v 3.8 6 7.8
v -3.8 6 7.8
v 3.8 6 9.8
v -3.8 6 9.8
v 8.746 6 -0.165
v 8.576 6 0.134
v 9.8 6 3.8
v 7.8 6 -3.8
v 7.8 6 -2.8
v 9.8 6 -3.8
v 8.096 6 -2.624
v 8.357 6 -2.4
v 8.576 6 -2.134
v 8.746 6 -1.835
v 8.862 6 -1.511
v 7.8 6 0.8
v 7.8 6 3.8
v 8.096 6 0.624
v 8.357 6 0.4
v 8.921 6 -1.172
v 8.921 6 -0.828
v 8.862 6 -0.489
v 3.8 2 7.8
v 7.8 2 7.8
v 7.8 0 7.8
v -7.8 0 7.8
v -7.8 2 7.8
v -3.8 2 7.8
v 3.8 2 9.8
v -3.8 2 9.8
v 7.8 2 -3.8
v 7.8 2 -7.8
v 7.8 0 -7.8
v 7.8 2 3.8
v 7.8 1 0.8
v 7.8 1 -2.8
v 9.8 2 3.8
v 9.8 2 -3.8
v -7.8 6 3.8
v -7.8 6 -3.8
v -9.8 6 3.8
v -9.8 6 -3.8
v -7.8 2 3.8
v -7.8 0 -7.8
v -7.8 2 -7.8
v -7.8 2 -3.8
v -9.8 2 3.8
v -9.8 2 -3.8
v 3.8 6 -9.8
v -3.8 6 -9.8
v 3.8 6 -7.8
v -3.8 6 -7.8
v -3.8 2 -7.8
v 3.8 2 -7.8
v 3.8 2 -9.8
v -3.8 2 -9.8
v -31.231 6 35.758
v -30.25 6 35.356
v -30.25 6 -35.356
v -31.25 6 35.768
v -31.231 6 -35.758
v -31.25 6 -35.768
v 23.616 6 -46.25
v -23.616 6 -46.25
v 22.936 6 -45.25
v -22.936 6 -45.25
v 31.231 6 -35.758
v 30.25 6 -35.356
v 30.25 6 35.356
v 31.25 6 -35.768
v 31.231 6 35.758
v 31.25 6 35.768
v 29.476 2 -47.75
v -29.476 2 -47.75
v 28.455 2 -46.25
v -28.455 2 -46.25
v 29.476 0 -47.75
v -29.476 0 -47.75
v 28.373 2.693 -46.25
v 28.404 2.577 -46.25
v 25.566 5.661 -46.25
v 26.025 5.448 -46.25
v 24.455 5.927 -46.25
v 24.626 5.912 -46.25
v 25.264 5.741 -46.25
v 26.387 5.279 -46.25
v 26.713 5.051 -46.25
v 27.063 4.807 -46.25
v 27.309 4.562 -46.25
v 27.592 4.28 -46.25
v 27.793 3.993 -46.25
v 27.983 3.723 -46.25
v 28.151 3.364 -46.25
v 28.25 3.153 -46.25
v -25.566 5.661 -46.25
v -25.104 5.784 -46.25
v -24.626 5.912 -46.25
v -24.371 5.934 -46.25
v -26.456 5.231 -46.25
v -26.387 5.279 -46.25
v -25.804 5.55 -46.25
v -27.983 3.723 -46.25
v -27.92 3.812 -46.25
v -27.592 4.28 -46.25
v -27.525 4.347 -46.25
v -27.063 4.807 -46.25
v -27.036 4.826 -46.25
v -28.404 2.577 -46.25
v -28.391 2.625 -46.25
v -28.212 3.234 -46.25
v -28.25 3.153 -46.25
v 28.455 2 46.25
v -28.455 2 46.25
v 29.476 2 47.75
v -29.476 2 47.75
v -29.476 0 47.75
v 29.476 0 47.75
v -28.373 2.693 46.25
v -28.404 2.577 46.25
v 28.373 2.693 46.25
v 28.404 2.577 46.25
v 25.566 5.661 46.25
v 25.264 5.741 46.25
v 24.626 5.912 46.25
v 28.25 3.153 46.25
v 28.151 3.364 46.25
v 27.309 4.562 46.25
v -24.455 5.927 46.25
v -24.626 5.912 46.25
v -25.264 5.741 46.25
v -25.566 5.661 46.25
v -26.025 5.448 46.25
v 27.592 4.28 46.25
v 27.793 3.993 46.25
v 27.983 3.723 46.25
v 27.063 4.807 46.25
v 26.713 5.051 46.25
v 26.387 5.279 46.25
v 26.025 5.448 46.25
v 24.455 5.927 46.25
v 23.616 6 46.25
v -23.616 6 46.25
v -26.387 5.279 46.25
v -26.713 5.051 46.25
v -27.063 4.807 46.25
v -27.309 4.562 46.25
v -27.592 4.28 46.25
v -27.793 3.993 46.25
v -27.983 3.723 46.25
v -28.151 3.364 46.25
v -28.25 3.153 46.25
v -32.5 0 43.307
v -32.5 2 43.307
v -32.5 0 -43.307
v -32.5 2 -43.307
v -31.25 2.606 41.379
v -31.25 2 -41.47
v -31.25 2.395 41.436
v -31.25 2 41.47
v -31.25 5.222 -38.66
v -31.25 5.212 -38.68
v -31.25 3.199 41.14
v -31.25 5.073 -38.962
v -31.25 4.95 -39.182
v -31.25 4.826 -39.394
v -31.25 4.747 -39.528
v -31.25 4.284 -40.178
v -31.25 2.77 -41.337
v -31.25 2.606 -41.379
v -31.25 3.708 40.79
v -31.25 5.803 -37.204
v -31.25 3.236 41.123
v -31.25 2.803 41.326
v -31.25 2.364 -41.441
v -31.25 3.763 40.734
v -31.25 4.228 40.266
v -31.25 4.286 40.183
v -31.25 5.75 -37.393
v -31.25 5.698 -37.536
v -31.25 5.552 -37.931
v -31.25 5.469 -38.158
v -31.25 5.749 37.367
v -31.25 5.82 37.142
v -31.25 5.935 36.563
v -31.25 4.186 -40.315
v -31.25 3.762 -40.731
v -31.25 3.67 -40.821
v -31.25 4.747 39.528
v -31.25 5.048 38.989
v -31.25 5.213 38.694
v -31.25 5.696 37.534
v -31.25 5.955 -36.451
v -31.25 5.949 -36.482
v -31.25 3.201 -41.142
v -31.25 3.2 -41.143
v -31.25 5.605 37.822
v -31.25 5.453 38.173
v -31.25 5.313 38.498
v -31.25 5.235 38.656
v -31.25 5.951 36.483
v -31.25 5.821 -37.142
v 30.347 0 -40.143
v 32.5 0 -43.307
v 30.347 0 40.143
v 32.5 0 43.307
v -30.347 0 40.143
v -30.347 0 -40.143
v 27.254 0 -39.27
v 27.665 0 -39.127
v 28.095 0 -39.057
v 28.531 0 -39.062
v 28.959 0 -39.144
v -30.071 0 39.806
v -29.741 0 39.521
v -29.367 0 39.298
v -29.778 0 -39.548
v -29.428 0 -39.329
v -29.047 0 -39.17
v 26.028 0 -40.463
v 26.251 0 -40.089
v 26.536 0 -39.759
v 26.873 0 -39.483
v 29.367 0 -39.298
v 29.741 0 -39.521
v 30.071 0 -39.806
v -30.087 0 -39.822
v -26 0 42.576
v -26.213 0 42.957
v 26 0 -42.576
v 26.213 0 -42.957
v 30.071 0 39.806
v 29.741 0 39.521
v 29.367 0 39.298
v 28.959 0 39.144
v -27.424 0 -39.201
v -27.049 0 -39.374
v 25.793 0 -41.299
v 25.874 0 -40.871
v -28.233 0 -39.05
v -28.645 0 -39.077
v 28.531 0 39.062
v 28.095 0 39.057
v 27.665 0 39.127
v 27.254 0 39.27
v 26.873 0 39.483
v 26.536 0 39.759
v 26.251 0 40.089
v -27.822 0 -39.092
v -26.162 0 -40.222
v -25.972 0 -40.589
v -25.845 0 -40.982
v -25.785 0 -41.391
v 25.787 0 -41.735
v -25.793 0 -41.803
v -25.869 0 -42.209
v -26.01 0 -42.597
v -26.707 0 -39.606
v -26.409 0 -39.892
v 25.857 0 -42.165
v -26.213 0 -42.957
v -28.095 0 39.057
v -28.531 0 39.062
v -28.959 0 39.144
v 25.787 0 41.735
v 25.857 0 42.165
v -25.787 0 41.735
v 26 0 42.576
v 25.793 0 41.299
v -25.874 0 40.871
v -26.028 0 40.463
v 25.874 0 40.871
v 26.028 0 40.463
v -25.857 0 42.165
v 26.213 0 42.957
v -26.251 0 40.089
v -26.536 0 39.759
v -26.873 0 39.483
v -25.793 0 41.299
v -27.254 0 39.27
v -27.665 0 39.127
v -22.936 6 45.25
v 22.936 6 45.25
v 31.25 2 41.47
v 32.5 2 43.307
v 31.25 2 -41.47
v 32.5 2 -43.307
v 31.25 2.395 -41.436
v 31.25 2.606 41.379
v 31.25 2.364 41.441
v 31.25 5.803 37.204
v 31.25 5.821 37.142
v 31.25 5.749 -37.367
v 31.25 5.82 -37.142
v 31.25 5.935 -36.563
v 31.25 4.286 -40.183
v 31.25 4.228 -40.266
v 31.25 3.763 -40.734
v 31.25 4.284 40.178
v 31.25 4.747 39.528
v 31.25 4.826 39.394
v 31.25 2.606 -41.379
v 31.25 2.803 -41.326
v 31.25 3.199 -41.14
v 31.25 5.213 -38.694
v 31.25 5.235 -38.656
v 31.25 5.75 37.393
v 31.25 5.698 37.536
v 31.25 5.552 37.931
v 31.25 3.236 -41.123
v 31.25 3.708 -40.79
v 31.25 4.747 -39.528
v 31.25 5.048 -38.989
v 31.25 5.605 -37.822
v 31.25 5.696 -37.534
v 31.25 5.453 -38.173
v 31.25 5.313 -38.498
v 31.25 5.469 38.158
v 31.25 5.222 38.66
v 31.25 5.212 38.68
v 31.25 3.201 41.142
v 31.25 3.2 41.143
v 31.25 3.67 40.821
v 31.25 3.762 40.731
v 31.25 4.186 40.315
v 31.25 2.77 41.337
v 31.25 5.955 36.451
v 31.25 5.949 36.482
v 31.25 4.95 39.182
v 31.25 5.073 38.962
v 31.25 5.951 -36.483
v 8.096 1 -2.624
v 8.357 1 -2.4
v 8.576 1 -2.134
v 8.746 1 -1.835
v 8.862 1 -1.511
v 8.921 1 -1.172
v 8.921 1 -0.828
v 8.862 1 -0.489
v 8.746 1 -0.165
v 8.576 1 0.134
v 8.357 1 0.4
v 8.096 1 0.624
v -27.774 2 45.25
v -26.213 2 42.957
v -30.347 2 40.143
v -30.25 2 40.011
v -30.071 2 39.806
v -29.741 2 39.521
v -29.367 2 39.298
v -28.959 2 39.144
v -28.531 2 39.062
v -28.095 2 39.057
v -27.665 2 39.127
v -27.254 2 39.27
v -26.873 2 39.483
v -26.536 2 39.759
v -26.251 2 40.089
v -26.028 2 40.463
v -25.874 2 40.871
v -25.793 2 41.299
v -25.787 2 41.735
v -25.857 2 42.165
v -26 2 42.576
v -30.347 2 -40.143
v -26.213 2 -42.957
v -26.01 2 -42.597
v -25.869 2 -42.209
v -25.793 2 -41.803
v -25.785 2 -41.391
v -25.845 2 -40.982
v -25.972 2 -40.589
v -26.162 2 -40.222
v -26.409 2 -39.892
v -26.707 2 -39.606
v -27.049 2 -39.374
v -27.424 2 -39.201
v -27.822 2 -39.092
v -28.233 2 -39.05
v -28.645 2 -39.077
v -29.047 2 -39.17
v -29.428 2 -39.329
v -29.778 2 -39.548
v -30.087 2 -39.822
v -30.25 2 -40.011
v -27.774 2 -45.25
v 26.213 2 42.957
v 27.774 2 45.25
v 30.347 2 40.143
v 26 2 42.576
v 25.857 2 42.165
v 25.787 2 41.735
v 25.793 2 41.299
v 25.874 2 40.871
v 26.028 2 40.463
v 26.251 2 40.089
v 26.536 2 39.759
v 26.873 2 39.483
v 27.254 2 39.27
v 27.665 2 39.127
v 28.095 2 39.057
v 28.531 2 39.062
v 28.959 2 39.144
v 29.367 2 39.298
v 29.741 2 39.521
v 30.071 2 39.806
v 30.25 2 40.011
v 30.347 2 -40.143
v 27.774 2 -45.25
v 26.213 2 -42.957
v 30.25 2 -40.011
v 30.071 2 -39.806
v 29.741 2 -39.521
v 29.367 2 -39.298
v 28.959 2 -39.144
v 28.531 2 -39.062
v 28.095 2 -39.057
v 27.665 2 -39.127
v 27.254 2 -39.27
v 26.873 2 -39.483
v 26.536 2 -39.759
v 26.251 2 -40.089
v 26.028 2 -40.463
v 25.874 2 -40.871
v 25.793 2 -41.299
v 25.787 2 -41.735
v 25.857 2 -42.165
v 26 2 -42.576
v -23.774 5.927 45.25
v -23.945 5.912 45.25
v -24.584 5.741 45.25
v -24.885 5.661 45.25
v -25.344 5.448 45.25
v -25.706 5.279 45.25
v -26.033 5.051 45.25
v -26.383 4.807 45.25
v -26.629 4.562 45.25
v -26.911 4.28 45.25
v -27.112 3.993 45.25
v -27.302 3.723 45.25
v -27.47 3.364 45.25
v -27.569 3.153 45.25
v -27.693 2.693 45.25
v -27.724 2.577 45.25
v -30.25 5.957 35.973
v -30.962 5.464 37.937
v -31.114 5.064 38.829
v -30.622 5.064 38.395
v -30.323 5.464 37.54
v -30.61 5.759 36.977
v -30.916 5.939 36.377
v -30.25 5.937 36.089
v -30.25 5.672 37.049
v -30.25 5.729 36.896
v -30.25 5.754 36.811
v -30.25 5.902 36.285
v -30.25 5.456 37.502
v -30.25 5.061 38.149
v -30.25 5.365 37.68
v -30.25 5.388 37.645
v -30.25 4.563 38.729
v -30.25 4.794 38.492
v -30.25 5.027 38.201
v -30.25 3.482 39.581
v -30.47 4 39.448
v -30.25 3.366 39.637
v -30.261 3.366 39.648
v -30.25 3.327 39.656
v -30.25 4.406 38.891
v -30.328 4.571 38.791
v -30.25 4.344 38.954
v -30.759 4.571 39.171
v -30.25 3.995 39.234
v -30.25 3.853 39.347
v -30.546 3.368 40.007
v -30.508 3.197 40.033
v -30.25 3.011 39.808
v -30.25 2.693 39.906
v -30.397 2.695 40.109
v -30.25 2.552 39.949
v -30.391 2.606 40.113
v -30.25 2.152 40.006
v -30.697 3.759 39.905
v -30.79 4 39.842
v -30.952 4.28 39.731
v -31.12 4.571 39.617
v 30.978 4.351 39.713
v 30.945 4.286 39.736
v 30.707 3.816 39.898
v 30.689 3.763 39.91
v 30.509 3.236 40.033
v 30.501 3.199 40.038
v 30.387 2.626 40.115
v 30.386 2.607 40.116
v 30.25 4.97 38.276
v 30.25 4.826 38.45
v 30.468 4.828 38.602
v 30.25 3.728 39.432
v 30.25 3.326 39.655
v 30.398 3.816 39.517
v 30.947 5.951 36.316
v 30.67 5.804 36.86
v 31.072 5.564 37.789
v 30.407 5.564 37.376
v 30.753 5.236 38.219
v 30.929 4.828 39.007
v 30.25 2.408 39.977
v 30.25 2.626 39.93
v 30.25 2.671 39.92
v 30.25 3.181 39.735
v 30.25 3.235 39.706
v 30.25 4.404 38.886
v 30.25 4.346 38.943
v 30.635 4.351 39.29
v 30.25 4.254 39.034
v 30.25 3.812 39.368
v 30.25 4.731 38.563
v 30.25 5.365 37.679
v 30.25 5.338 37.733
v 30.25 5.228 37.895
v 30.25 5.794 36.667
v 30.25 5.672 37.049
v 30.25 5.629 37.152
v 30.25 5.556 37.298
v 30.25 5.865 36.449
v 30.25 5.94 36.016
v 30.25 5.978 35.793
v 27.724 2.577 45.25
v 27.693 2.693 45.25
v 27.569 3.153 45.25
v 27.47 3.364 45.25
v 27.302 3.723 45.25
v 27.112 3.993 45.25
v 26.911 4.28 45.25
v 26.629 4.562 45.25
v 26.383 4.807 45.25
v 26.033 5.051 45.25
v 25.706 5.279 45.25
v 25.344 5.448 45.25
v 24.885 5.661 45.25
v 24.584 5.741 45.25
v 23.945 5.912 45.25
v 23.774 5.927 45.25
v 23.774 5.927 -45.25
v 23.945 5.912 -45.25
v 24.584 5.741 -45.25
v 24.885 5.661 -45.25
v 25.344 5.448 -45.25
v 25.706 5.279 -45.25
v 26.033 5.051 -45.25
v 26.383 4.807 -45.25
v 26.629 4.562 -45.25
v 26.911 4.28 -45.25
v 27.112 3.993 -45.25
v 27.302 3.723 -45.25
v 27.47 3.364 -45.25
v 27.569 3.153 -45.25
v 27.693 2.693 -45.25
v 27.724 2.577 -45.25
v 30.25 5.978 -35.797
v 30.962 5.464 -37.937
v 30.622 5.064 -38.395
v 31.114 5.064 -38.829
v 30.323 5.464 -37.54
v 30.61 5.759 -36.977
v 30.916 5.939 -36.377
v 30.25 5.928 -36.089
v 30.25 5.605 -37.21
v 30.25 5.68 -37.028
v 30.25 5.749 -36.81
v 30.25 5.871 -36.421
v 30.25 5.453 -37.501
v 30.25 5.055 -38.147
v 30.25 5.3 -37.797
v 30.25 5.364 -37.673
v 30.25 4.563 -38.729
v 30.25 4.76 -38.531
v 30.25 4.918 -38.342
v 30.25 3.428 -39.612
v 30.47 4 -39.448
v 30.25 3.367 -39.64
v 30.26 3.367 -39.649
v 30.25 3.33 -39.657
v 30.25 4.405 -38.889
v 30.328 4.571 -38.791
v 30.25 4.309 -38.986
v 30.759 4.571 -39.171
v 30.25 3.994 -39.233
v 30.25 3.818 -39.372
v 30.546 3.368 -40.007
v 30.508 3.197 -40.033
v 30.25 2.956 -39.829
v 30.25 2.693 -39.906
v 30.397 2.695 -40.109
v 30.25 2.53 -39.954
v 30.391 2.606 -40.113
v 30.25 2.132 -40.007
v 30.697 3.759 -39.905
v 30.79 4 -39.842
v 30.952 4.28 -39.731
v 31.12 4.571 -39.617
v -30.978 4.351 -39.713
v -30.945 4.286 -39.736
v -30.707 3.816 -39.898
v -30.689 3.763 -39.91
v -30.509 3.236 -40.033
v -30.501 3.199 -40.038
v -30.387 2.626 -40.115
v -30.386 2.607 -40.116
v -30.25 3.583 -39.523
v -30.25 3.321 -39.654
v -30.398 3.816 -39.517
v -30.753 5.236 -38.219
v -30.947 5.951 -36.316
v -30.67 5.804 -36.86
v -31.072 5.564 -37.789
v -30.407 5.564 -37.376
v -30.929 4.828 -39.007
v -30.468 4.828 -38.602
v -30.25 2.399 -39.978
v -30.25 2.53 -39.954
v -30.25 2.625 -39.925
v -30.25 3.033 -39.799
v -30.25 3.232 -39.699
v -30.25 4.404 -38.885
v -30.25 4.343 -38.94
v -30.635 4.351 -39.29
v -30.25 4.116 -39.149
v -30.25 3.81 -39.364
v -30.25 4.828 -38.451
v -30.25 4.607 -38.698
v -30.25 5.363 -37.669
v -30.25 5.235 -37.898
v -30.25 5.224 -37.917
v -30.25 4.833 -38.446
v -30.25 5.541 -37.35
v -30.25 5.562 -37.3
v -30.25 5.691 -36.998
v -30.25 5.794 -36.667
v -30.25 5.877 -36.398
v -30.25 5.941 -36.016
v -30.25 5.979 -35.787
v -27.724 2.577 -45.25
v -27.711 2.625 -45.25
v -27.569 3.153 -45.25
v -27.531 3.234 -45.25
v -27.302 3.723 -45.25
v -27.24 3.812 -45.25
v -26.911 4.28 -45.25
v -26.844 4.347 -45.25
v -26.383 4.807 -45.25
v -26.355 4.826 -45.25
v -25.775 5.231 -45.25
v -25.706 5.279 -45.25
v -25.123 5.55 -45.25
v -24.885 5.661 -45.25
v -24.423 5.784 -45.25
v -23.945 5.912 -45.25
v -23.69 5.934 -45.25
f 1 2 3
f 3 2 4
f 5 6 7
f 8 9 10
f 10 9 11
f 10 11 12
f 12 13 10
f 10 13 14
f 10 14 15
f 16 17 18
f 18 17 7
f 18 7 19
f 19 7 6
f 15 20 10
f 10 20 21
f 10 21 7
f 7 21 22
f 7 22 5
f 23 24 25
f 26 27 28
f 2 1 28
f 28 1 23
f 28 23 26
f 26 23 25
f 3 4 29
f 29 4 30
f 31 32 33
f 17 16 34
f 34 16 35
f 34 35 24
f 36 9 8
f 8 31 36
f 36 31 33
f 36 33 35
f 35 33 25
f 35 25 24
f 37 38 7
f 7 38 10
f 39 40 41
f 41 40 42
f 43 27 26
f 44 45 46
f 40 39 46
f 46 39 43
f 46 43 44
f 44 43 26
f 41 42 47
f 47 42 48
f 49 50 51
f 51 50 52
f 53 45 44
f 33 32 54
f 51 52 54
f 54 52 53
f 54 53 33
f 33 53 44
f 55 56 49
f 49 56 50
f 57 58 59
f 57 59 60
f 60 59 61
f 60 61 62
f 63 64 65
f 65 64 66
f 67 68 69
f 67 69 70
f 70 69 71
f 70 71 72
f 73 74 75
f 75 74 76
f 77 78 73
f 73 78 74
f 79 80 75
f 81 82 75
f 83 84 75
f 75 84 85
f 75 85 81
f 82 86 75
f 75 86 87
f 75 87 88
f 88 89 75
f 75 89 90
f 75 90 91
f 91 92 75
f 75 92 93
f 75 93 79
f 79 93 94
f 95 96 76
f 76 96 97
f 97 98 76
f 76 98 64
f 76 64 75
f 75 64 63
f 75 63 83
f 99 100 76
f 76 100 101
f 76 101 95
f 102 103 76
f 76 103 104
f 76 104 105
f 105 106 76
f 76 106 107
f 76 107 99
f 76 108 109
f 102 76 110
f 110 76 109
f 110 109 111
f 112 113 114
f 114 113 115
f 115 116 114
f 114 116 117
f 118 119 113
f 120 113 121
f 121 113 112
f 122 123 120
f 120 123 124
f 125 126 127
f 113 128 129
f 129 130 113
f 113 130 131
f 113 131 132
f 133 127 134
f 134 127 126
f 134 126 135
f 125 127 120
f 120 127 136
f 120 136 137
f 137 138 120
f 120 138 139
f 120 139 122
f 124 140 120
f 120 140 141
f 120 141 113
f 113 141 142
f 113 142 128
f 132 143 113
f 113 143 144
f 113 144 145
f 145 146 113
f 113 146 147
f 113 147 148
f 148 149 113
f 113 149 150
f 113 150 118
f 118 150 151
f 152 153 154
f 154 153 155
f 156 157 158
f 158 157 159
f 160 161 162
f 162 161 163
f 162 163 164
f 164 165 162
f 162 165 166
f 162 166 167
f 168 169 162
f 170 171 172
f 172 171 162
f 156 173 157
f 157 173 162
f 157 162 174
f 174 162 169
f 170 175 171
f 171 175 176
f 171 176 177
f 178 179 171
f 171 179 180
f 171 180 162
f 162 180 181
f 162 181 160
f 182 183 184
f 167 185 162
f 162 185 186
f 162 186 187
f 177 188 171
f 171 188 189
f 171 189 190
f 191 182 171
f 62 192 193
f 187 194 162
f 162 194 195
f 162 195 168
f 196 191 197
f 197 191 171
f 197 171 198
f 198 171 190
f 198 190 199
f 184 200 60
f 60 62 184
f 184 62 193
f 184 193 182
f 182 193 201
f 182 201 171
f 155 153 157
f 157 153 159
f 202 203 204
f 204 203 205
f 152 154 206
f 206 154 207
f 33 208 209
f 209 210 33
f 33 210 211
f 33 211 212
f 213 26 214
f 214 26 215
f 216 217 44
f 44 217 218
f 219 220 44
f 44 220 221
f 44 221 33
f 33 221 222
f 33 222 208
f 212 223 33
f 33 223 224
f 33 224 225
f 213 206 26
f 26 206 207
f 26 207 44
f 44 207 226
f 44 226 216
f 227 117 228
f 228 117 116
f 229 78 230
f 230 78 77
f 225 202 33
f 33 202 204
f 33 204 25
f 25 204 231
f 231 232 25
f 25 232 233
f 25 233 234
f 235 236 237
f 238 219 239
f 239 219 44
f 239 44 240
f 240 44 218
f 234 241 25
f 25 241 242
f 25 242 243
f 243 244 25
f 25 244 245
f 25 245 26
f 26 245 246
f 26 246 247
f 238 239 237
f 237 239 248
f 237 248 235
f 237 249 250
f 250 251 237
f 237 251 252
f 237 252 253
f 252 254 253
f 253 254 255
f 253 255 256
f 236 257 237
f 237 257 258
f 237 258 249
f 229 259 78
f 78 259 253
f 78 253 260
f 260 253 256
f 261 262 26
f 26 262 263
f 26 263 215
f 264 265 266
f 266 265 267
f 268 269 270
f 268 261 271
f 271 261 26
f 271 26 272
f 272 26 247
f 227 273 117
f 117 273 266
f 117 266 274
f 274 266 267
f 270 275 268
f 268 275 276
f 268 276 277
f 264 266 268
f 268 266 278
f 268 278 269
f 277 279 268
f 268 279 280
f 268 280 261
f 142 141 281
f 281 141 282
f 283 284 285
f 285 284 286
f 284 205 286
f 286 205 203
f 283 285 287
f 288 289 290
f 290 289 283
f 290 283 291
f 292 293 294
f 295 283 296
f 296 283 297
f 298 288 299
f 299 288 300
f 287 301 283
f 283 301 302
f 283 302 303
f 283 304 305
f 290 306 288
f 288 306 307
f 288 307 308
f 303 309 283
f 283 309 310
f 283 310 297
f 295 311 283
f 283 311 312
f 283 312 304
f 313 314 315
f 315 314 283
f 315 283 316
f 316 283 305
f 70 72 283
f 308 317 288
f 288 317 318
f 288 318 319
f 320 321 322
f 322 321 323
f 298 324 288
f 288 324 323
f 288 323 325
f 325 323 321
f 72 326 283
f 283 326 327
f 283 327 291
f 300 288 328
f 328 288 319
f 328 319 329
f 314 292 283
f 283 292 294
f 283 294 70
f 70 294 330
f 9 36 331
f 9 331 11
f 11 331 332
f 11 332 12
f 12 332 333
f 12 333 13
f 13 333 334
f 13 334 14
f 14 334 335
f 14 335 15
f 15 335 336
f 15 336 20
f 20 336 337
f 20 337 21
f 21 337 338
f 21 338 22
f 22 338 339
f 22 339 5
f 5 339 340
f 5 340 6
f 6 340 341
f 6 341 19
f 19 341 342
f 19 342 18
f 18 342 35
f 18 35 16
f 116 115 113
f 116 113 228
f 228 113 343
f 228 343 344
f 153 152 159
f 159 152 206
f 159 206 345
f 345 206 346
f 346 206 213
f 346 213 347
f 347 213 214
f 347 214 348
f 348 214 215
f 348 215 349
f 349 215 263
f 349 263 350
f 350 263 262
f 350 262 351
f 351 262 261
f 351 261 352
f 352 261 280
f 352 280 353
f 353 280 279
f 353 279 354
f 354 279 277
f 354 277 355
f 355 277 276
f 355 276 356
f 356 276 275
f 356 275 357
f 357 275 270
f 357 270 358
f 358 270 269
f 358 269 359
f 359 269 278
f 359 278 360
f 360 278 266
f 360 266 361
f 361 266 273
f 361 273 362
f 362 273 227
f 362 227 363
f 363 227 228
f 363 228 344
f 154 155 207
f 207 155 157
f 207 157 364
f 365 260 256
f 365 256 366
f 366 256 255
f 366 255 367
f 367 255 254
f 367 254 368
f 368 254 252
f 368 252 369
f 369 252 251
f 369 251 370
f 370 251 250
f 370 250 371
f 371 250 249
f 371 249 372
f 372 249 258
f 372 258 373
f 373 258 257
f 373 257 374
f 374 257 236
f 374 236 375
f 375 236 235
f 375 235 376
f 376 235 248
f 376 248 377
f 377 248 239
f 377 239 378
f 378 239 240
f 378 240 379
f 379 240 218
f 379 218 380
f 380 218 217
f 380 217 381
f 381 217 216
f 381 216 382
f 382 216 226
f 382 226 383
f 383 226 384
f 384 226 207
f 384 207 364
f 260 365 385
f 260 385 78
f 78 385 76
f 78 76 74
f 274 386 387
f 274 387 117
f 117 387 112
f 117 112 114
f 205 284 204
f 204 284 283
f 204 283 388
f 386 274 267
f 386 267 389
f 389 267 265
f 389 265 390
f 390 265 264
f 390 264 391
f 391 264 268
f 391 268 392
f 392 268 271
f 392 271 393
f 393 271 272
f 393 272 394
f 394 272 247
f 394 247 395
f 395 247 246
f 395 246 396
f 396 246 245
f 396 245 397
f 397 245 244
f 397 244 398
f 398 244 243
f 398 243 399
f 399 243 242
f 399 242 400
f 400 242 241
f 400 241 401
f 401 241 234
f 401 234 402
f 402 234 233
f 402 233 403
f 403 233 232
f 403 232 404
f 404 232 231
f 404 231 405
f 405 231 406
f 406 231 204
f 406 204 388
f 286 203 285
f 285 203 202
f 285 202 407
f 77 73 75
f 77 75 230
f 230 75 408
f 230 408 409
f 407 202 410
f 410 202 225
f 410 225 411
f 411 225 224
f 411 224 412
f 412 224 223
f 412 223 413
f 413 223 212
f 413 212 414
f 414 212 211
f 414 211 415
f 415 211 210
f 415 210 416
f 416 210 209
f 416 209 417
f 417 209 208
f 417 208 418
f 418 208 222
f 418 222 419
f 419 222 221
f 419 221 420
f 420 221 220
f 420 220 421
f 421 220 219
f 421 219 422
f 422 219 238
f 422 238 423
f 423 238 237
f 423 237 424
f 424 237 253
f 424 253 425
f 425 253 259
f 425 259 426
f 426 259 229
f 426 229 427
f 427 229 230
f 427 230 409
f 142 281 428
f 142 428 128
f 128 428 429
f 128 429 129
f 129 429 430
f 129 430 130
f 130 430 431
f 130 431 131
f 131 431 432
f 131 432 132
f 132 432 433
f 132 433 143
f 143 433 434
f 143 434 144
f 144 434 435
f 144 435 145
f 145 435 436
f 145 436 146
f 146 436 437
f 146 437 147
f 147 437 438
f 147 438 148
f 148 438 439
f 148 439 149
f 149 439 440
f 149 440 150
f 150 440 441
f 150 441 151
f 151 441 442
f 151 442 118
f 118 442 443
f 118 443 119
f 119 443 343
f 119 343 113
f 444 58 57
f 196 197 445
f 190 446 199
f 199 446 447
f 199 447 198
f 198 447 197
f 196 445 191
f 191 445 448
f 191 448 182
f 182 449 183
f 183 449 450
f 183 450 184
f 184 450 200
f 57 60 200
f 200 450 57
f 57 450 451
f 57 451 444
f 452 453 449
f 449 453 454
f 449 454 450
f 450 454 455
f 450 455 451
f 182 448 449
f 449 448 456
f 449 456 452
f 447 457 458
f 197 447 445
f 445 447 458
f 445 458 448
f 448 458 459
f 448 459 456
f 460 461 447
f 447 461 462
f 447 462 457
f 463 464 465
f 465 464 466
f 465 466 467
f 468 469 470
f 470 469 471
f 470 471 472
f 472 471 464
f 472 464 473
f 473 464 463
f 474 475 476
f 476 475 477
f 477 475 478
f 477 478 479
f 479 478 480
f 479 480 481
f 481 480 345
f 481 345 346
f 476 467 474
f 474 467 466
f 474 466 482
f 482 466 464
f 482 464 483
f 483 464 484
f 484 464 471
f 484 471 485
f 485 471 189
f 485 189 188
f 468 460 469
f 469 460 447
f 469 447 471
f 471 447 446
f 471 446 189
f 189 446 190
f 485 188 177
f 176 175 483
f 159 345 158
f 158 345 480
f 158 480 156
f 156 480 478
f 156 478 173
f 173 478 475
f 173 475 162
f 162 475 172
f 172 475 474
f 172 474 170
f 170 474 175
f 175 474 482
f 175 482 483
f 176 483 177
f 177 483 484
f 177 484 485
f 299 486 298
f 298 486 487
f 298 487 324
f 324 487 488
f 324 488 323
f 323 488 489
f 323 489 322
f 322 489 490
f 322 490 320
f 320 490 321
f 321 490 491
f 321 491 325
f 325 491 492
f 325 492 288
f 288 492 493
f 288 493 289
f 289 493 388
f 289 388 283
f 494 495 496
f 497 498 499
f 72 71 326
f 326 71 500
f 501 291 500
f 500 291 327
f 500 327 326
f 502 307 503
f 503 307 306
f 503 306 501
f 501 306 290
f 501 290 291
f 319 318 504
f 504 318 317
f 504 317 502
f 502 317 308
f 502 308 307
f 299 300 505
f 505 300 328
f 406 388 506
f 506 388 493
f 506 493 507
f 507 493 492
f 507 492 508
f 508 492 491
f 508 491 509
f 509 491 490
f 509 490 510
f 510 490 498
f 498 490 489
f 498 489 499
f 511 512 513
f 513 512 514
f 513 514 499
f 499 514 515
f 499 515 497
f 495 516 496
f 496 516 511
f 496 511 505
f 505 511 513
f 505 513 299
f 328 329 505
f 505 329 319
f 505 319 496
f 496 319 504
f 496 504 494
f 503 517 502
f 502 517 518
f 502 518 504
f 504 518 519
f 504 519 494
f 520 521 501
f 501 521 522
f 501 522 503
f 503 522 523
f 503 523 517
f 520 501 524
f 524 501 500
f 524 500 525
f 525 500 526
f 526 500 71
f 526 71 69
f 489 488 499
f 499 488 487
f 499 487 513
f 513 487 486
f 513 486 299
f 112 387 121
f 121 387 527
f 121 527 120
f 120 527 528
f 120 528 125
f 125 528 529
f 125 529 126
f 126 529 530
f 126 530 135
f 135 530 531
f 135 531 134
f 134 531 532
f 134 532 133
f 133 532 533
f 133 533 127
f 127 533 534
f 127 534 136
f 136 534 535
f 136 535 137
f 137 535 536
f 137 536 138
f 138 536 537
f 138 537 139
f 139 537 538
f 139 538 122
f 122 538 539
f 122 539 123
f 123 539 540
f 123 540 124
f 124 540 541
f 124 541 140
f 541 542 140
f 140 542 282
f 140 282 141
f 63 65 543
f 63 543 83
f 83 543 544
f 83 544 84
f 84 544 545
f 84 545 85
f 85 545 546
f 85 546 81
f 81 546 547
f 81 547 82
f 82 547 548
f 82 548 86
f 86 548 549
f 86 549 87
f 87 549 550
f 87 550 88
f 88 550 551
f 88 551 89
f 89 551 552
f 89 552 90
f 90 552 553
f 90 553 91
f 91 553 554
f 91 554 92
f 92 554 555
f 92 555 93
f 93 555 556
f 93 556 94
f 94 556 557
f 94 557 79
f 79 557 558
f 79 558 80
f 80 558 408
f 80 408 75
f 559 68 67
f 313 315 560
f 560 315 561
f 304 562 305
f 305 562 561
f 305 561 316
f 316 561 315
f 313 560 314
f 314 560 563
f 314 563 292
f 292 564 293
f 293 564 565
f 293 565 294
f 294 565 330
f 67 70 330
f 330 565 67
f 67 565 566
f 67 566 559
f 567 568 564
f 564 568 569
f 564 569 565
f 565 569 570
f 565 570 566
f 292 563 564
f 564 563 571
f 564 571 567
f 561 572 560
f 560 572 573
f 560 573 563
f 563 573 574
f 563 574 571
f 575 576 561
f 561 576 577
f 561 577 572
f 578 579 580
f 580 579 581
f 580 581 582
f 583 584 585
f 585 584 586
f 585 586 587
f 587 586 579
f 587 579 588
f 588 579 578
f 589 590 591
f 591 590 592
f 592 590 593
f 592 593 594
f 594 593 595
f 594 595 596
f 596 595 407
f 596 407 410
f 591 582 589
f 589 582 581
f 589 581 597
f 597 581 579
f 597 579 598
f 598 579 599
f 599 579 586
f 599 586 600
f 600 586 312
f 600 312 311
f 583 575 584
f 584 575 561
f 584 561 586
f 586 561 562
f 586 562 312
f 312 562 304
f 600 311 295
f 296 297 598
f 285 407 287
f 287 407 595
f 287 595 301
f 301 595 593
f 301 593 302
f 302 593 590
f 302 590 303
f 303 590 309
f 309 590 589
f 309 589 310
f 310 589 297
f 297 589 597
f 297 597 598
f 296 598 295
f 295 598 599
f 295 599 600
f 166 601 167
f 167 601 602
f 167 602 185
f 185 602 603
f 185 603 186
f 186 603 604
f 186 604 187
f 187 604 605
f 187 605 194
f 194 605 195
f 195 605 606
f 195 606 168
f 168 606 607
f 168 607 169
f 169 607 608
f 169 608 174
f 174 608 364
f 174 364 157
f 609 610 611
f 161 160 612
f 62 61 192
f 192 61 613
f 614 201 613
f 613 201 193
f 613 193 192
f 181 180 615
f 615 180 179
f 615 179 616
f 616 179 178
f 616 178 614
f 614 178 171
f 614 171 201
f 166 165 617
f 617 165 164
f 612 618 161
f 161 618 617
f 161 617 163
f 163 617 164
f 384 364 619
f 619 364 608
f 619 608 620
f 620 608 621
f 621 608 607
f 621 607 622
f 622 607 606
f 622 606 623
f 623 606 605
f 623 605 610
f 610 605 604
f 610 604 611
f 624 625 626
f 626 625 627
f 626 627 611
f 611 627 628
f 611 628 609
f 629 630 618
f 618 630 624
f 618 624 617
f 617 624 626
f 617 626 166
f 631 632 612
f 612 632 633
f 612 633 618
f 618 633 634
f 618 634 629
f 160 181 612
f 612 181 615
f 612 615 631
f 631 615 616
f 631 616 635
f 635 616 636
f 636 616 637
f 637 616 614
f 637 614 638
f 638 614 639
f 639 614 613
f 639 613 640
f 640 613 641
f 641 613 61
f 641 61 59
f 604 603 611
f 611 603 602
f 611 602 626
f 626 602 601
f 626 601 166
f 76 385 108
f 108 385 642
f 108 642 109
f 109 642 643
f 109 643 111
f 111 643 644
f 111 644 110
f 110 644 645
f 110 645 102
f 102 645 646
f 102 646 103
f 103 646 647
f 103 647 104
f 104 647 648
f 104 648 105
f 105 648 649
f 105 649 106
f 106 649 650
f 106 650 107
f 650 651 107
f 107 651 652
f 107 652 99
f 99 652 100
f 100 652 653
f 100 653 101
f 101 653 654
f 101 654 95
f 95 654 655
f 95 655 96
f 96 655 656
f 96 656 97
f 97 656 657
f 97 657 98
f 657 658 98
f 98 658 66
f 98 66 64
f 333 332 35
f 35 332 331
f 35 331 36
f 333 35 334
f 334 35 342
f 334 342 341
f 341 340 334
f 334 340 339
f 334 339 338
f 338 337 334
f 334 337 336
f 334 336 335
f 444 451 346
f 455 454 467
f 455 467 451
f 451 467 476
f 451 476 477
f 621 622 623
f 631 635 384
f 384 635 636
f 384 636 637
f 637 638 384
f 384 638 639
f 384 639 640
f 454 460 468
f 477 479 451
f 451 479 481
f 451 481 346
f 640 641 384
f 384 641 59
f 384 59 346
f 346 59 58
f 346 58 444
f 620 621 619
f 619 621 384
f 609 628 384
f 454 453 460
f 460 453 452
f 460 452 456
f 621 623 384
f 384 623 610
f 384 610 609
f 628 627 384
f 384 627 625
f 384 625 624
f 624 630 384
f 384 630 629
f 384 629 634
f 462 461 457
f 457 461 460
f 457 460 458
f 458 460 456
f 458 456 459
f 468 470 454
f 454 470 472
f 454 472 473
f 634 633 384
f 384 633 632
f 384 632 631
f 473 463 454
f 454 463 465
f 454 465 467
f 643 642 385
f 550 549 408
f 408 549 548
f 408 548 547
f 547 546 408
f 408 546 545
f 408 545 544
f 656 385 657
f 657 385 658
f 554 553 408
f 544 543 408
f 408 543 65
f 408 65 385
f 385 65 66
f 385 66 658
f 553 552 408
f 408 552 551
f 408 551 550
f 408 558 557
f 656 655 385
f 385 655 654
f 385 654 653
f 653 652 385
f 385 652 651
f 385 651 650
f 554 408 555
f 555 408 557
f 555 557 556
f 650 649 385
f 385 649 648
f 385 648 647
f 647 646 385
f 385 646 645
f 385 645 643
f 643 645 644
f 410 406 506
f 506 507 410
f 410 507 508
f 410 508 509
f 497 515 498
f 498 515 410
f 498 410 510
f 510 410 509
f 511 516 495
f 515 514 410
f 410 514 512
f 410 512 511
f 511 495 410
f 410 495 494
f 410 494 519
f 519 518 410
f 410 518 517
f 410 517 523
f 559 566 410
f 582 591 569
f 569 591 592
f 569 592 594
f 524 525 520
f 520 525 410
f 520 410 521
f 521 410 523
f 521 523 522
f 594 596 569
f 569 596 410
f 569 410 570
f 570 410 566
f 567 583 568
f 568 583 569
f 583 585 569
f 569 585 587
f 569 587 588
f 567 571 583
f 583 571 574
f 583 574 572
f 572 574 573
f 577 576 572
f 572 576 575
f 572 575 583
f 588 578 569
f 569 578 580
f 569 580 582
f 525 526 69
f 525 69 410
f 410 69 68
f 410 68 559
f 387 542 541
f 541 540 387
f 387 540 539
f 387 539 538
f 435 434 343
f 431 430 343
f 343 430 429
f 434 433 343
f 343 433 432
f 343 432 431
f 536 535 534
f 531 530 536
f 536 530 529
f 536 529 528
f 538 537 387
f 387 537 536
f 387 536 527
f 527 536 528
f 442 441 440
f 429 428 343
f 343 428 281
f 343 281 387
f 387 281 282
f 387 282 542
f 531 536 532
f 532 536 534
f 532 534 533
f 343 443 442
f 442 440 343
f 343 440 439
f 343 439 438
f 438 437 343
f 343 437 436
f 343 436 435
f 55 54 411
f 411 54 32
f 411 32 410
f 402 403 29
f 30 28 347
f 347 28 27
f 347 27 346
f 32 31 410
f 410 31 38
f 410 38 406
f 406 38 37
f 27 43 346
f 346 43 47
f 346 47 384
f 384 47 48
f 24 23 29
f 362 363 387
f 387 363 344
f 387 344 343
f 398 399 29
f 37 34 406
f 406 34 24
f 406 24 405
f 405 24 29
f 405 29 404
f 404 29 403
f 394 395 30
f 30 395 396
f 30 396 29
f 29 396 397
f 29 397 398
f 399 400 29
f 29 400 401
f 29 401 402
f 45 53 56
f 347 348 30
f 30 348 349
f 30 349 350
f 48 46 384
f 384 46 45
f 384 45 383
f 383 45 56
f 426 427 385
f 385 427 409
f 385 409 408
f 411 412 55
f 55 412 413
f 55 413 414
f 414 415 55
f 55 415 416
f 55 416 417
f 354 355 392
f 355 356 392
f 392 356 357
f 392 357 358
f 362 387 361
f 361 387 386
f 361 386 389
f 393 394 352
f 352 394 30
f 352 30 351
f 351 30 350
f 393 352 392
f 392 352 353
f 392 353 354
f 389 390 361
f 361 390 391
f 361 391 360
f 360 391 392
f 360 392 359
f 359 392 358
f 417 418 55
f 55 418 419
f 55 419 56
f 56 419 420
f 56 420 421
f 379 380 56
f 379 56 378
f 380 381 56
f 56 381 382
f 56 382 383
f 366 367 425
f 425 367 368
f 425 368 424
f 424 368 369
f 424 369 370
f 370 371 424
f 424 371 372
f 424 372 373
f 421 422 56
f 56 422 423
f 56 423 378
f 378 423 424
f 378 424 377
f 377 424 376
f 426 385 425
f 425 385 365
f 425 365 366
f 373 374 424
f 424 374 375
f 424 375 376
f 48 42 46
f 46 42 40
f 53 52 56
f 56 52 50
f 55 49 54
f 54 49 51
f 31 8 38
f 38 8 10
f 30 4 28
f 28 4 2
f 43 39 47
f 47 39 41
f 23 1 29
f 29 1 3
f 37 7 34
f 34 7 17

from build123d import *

# Parameters (mm, degrees)
SKETCH1_W           = 65
SKETCH1_H           = 95.5
BOSS_EXTRUDE1_DEPTH = 2
SKETCH1_3_W         = 62.5
SKETCH1_3_H         = 92.5
BOSS_EXTRUDE2_DEPTH = 6
SKETCH2_4_W         = 19.6
SKETCH2_4_H         = 19.6
BOSS_EXTRUDE3_DEPTH = 6
CUT_EXTRUDE2_DEPTH  = 39
CUT_EXTRUDE3_DEPTH  = 10
FILLET1_R           = 4
BOSS_EXTRUDE4_DEPTH = 1
SKETCH5_W           = 19.6
SKETCH5_H           = 19.6
CUT_EXTRUDE7_DEPTH  = 4
SKETCH8_W           = 6
SKETCH8_H           = 6
CUT_EXTRUDE8_DEPTH  = 10


with BuildPart() as part:
    # Sketch1 → Boss-Extrude1 (new body)
    with BuildSketch(Plane(origin=(0, 0, 0), x_dir=(1, 0, 0), z_dir=(0, 1, 0))):
        Rectangle(SKETCH1_W, SKETCH1_H)
    extrude(amount=BOSS_EXTRUDE1_DEPTH)

    # Sketch1<3> → Boss-Extrude2 (add)
    with BuildSketch(Plane(origin=(0, 0, 0), x_dir=(1, 0, 0), z_dir=(0, 1, 0))):
        Rectangle(SKETCH1_3_W, SKETCH1_3_H)
    extrude(amount=BOSS_EXTRUDE2_DEPTH)

    # Sketch2<4> → Boss-Extrude3 (add)
    with BuildSketch(Plane(origin=(0, 0, 0), x_dir=(1, 0, 0), z_dir=(0, 1, 0))):
        Rectangle(SKETCH2_4_W, SKETCH2_4_H)
    extrude(amount=BOSS_EXTRUDE3_DEPTH)

    # Sketch2 → Cut-Extrude2 (cut)
    with BuildSketch(Plane(origin=(0, 0, 0), x_dir=(1, 0, 0), z_dir=(0, 1, 0))):
        with BuildLine():
            Line((-7.8, 7.8), (-7.8, -7.8))
            Line((-7.8, -7.8), (7.8, -7.8))
            Line((7.8, -7.8), (7.8, -0.8))
            ThreePointArc((7.8, -0.8), (8.928220211, 1), (7.8, 2.8))
            Line((7.8, 2.8), (7.8, 7.8))
            Line((7.8, 7.8), (-7.8, 7.8))
        make_face()
    extrude(amount=CUT_EXTRUDE2_DEPTH, mode=Mode.SUBTRACT)

    # Sketch3 → Cut-Extrude3 (cut)
    with BuildSketch(Plane(origin=(0, 0, 0), x_dir=(1, 0, 0), z_dir=(0, 1, 0))):
        with BuildLine():
            Line((-30.433287704, 49.156662819), (-34.566712296, 46.343337181))
            Line((-34.566712296, 46.343337181), (-30.346723838, 40.143200294))
            ThreePointArc((-30.346723838, 40.143200294), (-26.873348724, 39.483150817), (-26.213299247, 42.956525932))
            Line((-26.213299247, 42.956525932), (-30.433287704, 49.156662819))
        make_face()
        with BuildLine():
            Line((34.566712296, 46.343337181), (30.433287704, 49.156662819))
            Line((30.433287704, 49.156662819), (26.213299247, 42.956525932))
            ThreePointArc((26.213299247, 42.956525932), (26.873348724, 39.483150817), (30.346723838, 40.143200294))
            Line((30.346723838, 40.143200294), (34.566712296, 46.343337181))
        make_face()
        with BuildLine():
            Line((-30.346723838, -40.143200294), (-34.566712296, -46.343337181))
            Line((-34.566712296, -46.343337181), (-30.433287704, -49.156662819))
            Line((-30.433287704, -49.156662819), (-26.213299247, -42.956525932))
            ThreePointArc((-26.213299247, -42.956525932), (-26.873348724, -39.483150817), (-30.346723838, -40.143200294))
        make_face()
        with BuildLine():
            Line((26.213299247, -42.956525932), (30.433287704, -49.156662819))
            Line((30.433287704, -49.156662819), (34.566712296, -46.343337181))
            Line((34.566712296, -46.343337181), (30.346723838, -40.143200294))
            ThreePointArc((30.346723838, -40.143200294), (26.873348724, -39.483150817), (26.213299247, -42.956525932))
        make_face()
    extrude(amount=CUT_EXTRUDE3_DEPTH, mode=Mode.SUBTRACT)

    # Fillet1
    # the kernel refuses this fillet: 4 mm, written as the material it takes off along each edge
    with BuildSketch(Plane(origin=(-36.876651276, 6, 49.737170606), x_dir=(0, -1, 0), z_dir=(0.5626651276372232, 0, -0.826684918297768)), Plane(origin=(30.346723838, 6, 40.143200294), x_dir=(0, -1, 0), z_dir=(0.5626651276372238, 0, 0.8266849182977677)), Plane(origin=(36.876651276, 6, -49.737170606), x_dir=(0, -1, 0), z_dir=(-0.562665127637224, 0, 0.8266849182977676)), Plane(origin=(-30.346723838, 6, -40.143200294), x_dir=(0, -1, 0), z_dir=(-0.5626651276372242, 0, -0.8266849182977674))) as fillet1_piece_1:
        with BuildLine():
            CenterArc((FILLET1_R, FILLET1_R), FILLET1_R, 180, 90)
            Line((0, FILLET1_R), (0, 0))
            Line((0, 0), (FILLET1_R, 0))
        make_face()
    extrude(amount=11.605353019, mode=Mode.SUBTRACT)
    with BuildSketch(Plane(origin=(-26.213299247, 6, 42.956525932), x_dir=(0, -1, 0), z_dir=(-0.5626651276372243, 0, 0.8266849182977672)), Plane(origin=(34.081582088, 6, 54.516849183), x_dir=(0, -1, 0), z_dir=(-0.5626651276372246, 0, -0.826684918297767)), Plane(origin=(26.213299247, 6, -42.956525932), x_dir=(0, -1, 0), z_dir=(0.5626651276372232, 0, -0.826684918297768)), Plane(origin=(-34.081582088, 6, -54.516849183), x_dir=(0, -1, 0), z_dir=(0.562665127637224, 0, 0.8266849182977676))) as fillet1_piece_2:
        with BuildLine():
            CenterArc((FILLET1_R, FILLET1_R), FILLET1_R, 180, 90)
            Line((0, FILLET1_R), (0, 0))
            Line((0, 0), (FILLET1_R, 0))
        make_face()
    extrude(amount=13.983953251, mode=Mode.SUBTRACT)
    with BuildSketch(Plane(origin=(-28.280011543, 6, 41.549863113), x_dir=(-0.8266849182977704, 0, -0.5626651276372198), z_dir=(-0.5626651276372198, 0, 0.8266849182977704))) as fillet1_piece_3:
        with BuildLine():
            CenterArc((2.5 + FILLET1_R, FILLET1_R), FILLET1_R, 180, 90)
            Line((2.5 + FILLET1_R, 0), (2.5, 0))
            Line((2.5, 0), (2.5, FILLET1_R))
        make_face()
    revolve(axis=Axis((-28.280011543, 6, 41.549863113), (0, -1, 0)), revolution_arc=180, mode=Mode.SUBTRACT)
    with BuildSketch(Plane(origin=(28.280011543, 6, 41.549863113), x_dir=(-0.8266849182977659, 0, 0.5626651276372262), z_dir=(0.5626651276372262, 0, 0.8266849182977659))) as fillet1_piece_4:
        with BuildLine():
            CenterArc((2.5 + FILLET1_R, FILLET1_R), FILLET1_R, 180, 90)
            Line((2.5 + FILLET1_R, 0), (2.5, 0))
            Line((2.5, 0), (2.5, FILLET1_R))
        make_face()
    revolve(axis=Axis((28.280011543, 6, 41.549863113), (0, -1, 0)), revolution_arc=180, mode=Mode.SUBTRACT)
    with BuildSketch(Plane(origin=(28.280011543, 6, -41.549863113), x_dir=(0.826684918297769, 0, 0.5626651276372218), z_dir=(0.5626651276372218, 0, -0.826684918297769))) as fillet1_piece_5:
        with BuildLine():
            CenterArc((2.5 + FILLET1_R, FILLET1_R), FILLET1_R, 180, 90)
            Line((2.5 + FILLET1_R, 0), (2.5, 0))
            Line((2.5, 0), (2.5, FILLET1_R))
        make_face()
    revolve(axis=Axis((28.280011543, 6, -41.549863113), (0, -1, 0)), revolution_arc=180, mode=Mode.SUBTRACT)
    with BuildSketch(Plane(origin=(-28.280011543, 6, -41.549863113), x_dir=(0.8266849182977655, 0, -0.562665127637227), z_dir=(-0.562665127637227, 0, -0.8266849182977655))) as fillet1_piece_6:
        with BuildLine():
            CenterArc((2.5 + FILLET1_R, FILLET1_R), FILLET1_R, 180, 90)
            Line((2.5 + FILLET1_R, 0), (2.5, 0))
            Line((2.5, 0), (2.5, FILLET1_R))
        make_face()
    revolve(axis=Axis((-28.280011543, 6, -41.549863113), (0, -1, 0)), revolution_arc=180, mode=Mode.SUBTRACT)

    # Sketch7 → Boss-Extrude4 (add)
    with BuildSketch(Plane(origin=(0, 0, 0), x_dir=(1, 0, 0), z_dir=(0, 1, 0))):
        with BuildLine():
            Line((7.8, 2.8), (7.8, -0.8))
            ThreePointArc((7.8, -0.8), (8.928220211, 1), (7.8, 2.8))
        make_face()
    extrude(amount=BOSS_EXTRUDE4_DEPTH)

    # Sketch5 → Cut-Extrude7 (cut)
    with BuildSketch(Plane(origin=(0, 6, 0), x_dir=(1, 0, 0), z_dir=(0, 1, 0))):
        Polygon((-21.756286609, -45.25), (21.756286609, -45.25), (30.25, -45.25), (30.25, -34.313210193), (30.25, 34.313210193), (30.25, 45.25), (21.756286609, 45.25), (-21.756286609, 45.25), (-30.25, 45.25), (-30.25, 34.313210193), (-30.25, -34.313210193), (-30.25, -45.25), align=None)
        Rectangle(SKETCH5_W, SKETCH5_H, mode=Mode.SUBTRACT)
    extrude(amount=-CUT_EXTRUDE7_DEPTH, mode=Mode.SUBTRACT)

    # Sketch8 → Cut-Extrude8 (cut)
    with BuildSketch(Plane(origin=(0, 2, 0), x_dir=(1, 0, 0), z_dir=(0, 1, 0))):
        with Locations((6.8, 6.8)):
            Rectangle(SKETCH8_W, SKETCH8_H)
        with Locations((-6.8, 6.8)):
            Rectangle(SKETCH8_W, SKETCH8_H)
        with Locations((-6.8, -6.8)):
            Rectangle(SKETCH8_W, SKETCH8_H)
        with Locations((6.8, -6.8)):
            Rectangle(SKETCH8_W, SKETCH8_H)
    extrude(amount=CUT_EXTRUDE8_DEPTH, mode=Mode.SUBTRACT)


solid = part.part
